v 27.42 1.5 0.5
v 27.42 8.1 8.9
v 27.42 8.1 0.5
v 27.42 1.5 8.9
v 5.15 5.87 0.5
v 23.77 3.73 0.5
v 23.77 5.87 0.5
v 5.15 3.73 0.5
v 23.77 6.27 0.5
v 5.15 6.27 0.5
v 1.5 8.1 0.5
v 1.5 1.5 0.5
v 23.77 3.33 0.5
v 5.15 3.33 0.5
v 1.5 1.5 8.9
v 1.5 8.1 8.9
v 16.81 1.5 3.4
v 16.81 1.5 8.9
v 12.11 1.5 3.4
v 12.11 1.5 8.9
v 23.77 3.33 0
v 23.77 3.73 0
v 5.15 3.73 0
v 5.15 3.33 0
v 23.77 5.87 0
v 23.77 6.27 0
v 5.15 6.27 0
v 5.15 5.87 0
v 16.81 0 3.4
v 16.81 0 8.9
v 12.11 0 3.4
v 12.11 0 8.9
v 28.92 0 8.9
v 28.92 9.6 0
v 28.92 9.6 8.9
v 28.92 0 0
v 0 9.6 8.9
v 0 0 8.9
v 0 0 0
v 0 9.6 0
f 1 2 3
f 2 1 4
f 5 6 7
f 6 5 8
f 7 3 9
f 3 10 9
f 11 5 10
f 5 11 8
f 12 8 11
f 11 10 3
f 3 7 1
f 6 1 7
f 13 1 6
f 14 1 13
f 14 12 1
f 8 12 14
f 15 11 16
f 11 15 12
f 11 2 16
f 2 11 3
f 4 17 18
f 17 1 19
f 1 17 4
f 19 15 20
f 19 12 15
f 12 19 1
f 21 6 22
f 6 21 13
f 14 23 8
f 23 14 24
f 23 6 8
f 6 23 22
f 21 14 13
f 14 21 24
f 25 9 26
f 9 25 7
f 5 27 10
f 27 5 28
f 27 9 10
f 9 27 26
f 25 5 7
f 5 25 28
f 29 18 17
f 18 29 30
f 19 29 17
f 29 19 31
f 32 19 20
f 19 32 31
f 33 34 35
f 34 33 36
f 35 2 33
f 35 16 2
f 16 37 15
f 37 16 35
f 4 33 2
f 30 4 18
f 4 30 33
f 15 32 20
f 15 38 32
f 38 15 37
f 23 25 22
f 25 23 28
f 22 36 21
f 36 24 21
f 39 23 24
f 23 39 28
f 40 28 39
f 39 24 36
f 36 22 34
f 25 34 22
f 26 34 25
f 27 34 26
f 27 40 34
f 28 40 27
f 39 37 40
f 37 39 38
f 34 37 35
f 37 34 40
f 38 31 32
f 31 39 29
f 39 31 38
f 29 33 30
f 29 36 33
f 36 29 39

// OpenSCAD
// IDC box connector frame for pin headers - WITH CENTER DIVIDER
// Based on design by John Stäck 2018
// Licensed under Creative Commons Attribution Share-alike 4.0 (CC BY-SA 4.0)
// https://creativecommons.org/licenses/by-sa/4.0/
//
// Modifications:
// - Changed bottom_thickness to 0.5mm
// - Added center divider on bottom surface

//Number of pins in one row of connector (half number of total pins)
n_pins = 8;

//How much to increase size of things to allow for good fit
printer_fudge = 0.2;

//Standard pin pitch
pin_pitch = 2.54;

//Pin size from C5383092 datasheet (SQ.0.64)
pin_size = 0.64;

//Tight clearance for 3D printed plastic (press-fit)
tight_clearance = 0.2;

//Dimensions of IDC connector
connector_length = 5.4+pin_pitch*n_pins;
connector_width = 6.4;

//Size of pin header base holes - TIGHT FIT based on actual pin dimensions
//Length: pin span + pin size + clearance
base_length = pin_pitch*(n_pins-1) + pin_size + tight_clearance;  // 17.78 + 0.64 + 0.2 = 18.62mm
//Width of each slot: tight press-fit
slot_width = 0.4;  // Very tight - plastic will grip the pins

//Size of orientation tab
tab_width=4.5;
tab_height=5.5; //Arbitrary number. Have no specs on this

//Height of standard IDC box header.
height=8.9;

//The height of a regular pin header plastic base
// MODIFIED: Changed from pin_pitch (2.54mm) to 0.5mm
bottom_thickness=0.5;


//These are default sizes for the outside of the box
/*
outside_length = 7.6+pin_pitch*n_pins;
outside_width = 8.8;
*/

//Outside dimensions, a bit thicker for more sturdiness when printed.
wall_thickness = 1.5;

outside_length = connector_length + 2*wall_thickness + printer_fudge;
outside_width = connector_width + 2*wall_thickness + printer_fudge;

conn_length_actual = connector_length + printer_fudge;
conn_width_actual = connector_width + printer_fudge;

tab_width_actual = tab_width + printer_fudge;

// ADDED: Center divider - calculated from row spacing minus slot widths
// Divider fills the gap between the two pin row slots
divider_thickness = pin_pitch - slot_width;  // 2.54 - 0.84 = 1.7mm


difference() {
    cube([outside_length, outside_width, height]);

    //All the things "cut out" are from center origin to make things easier to follow
    translate([outside_length/2, outside_width/2, 0]) {

        //Hole for connector (single open cavity above bottom plate)
        translate([-conn_length_actual/2, -conn_width_actual/2, bottom_thickness])
            cube([conn_length_actual, conn_width_actual, height]);

        //Hole for pin header in base - ROW 1 (tight slot for first pin row)
        // Centered at -pin_pitch/2 from center (Y offset = -1.27mm)
        translate([-base_length/2, -pin_pitch/2 - slot_width/2, -0.1])
            cube([base_length, slot_width, bottom_thickness + 0.2]);

        //Hole for pin header in base - ROW 2 (tight slot for second pin row)
        // Centered at +pin_pitch/2 from center (Y offset = +1.27mm)
        translate([-base_length/2, pin_pitch/2 - slot_width/2, -0.1])
            cube([base_length, slot_width, bottom_thickness + 0.2]);

        //Tab
        translate([-tab_width_actual/2, -outside_width, height-tab_height])
            cube([tab_width_actual, outside_width, height]);

    }

}
